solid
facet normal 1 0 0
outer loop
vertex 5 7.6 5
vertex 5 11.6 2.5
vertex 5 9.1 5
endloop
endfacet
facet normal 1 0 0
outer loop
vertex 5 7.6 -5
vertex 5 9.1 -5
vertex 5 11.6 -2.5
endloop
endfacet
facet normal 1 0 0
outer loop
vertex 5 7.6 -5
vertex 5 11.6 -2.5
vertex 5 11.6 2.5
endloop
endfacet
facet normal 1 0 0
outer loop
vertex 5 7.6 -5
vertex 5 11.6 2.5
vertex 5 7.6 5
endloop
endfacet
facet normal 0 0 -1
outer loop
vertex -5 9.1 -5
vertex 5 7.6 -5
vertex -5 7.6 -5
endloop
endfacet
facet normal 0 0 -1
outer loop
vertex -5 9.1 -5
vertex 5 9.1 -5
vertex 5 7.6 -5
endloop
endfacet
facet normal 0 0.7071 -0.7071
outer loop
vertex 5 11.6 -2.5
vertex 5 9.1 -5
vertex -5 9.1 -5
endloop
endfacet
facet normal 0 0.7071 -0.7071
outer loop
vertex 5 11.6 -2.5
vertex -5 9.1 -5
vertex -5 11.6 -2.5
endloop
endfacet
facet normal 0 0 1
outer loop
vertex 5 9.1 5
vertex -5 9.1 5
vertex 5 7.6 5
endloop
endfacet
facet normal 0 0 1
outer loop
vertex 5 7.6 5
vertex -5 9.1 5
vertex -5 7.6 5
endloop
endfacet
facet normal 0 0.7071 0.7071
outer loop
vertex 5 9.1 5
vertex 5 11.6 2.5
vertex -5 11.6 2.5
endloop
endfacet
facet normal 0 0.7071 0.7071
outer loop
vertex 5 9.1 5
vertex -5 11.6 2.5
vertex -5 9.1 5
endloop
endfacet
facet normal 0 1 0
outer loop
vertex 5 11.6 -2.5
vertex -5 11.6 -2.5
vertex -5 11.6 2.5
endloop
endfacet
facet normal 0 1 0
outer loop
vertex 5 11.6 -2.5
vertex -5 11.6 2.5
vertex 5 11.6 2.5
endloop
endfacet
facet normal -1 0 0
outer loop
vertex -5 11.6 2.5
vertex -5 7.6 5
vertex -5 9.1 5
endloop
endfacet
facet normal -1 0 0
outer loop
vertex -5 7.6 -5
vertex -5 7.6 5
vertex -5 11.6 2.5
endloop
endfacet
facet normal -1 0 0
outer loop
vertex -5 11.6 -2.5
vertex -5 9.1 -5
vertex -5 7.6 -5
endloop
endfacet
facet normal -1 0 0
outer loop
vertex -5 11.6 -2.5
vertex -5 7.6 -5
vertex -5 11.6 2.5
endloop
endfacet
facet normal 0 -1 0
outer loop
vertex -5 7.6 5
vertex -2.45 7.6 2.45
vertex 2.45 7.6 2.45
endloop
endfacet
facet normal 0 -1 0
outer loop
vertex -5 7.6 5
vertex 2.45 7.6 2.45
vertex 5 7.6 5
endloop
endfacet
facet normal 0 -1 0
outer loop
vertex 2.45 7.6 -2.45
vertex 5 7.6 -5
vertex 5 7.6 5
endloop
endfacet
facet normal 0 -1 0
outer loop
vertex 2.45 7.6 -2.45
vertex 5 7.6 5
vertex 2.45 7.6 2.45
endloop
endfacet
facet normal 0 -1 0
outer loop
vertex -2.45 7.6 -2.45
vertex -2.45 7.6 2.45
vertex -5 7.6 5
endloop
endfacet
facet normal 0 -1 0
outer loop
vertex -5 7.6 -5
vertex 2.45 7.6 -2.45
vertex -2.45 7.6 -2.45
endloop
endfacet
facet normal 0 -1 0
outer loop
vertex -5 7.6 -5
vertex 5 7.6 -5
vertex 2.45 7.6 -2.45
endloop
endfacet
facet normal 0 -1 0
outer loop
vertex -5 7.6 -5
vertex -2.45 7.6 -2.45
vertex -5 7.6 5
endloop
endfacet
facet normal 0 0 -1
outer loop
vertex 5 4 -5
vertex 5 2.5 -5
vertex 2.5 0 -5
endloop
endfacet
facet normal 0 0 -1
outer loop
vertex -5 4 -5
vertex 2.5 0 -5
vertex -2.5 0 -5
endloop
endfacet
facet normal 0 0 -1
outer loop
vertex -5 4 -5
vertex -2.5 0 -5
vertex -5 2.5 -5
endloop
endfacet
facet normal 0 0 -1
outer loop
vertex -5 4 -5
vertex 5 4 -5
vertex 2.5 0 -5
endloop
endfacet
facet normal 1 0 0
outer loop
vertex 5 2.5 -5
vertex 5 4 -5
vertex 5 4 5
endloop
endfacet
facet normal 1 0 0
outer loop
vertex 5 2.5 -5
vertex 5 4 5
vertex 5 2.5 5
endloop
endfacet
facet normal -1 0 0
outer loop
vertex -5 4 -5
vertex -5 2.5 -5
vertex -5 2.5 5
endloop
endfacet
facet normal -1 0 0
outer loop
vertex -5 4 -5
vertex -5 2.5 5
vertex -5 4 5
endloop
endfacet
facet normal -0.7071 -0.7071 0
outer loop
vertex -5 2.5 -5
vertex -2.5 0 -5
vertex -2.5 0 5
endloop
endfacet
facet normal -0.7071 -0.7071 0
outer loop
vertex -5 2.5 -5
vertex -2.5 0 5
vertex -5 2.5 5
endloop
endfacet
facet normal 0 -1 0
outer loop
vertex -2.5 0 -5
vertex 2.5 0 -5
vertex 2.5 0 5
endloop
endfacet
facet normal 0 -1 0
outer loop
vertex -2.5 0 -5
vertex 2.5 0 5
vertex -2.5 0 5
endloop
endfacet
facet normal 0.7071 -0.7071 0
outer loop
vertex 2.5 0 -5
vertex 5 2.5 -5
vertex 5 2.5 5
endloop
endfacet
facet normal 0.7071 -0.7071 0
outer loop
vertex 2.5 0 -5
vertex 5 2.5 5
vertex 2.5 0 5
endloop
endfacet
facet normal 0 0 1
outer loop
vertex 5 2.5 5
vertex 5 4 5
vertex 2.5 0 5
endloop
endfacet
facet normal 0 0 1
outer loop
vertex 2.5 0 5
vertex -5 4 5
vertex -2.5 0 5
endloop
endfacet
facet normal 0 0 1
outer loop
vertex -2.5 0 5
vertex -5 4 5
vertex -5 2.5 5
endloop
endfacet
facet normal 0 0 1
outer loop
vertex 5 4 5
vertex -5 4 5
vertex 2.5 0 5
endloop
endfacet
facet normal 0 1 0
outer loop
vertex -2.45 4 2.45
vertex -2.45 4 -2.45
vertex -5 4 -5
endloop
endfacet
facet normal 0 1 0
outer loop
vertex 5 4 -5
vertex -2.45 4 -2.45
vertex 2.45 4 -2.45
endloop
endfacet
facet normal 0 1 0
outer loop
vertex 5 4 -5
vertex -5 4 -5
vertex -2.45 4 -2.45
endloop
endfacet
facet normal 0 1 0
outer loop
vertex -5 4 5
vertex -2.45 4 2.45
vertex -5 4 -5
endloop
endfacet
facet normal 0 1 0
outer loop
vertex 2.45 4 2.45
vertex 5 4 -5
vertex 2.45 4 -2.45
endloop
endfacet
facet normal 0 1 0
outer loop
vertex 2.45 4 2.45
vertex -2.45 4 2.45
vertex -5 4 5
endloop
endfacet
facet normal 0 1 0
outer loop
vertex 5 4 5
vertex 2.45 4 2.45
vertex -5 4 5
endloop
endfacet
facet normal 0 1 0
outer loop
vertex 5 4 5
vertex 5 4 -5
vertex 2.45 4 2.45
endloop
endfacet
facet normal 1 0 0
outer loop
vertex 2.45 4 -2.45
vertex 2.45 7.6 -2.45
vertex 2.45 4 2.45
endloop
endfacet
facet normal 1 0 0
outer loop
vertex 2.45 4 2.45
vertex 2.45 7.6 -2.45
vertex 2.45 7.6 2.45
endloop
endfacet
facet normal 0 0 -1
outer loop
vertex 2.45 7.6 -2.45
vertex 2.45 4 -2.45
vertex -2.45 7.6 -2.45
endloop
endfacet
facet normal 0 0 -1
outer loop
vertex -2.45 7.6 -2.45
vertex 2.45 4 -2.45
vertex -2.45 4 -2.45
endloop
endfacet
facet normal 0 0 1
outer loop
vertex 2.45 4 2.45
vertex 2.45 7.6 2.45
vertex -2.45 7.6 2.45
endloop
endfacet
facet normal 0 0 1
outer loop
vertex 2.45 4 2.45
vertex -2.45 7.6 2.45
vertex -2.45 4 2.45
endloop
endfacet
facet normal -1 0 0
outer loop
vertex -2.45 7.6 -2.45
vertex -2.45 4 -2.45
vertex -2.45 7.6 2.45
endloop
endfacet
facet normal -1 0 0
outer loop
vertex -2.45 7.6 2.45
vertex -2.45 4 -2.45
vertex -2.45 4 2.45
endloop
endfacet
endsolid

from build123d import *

# Parameters (mm, degrees)
PAD_DEPTH         = 5
POCKET_DEPTH      = 5.001
POCKET_DEPTH_BACK = -5.001


with BuildPart() as part:
    # Sketch → Pad (new body, symmetric)
    with BuildSketch(Plane.XY):
        Polygon((-5, 4), (-2.45, 4), (-2.45, 7.6), (-5, 7.6), (-5, 11.6), (5, 11.6), (5, 7.6), (2.45, 7.6), (2.45, 4), (5, 4), (5, 2.5), (2.5, 0), (-2.5, 0), (-5, 2.5), align=None)
    extrude(amount=PAD_DEPTH, both=True)

    # Sketch001 → Pocket (cut, two sides)
    with BuildSketch(Plane.YZ) as pocket_sk:
        Polygon((11.6, 2.5), (11.6, -2.5), (9.1, -5), (7.6, -5), (7.6, -2.45), (4, -2.45), (4, -6.892367), (13.16095, -6.892367), (13.16095, 6.892367), (4, 6.892367), (4, 2.45), (7.6, 2.45), (7.6, 5), (9.1, 5), align=None)
    extrude(amount=-POCKET_DEPTH, mode=Mode.SUBTRACT)
    extrude(pocket_sk.sketch, amount=-POCKET_DEPTH_BACK, mode=Mode.SUBTRACT)


solid = part.part
